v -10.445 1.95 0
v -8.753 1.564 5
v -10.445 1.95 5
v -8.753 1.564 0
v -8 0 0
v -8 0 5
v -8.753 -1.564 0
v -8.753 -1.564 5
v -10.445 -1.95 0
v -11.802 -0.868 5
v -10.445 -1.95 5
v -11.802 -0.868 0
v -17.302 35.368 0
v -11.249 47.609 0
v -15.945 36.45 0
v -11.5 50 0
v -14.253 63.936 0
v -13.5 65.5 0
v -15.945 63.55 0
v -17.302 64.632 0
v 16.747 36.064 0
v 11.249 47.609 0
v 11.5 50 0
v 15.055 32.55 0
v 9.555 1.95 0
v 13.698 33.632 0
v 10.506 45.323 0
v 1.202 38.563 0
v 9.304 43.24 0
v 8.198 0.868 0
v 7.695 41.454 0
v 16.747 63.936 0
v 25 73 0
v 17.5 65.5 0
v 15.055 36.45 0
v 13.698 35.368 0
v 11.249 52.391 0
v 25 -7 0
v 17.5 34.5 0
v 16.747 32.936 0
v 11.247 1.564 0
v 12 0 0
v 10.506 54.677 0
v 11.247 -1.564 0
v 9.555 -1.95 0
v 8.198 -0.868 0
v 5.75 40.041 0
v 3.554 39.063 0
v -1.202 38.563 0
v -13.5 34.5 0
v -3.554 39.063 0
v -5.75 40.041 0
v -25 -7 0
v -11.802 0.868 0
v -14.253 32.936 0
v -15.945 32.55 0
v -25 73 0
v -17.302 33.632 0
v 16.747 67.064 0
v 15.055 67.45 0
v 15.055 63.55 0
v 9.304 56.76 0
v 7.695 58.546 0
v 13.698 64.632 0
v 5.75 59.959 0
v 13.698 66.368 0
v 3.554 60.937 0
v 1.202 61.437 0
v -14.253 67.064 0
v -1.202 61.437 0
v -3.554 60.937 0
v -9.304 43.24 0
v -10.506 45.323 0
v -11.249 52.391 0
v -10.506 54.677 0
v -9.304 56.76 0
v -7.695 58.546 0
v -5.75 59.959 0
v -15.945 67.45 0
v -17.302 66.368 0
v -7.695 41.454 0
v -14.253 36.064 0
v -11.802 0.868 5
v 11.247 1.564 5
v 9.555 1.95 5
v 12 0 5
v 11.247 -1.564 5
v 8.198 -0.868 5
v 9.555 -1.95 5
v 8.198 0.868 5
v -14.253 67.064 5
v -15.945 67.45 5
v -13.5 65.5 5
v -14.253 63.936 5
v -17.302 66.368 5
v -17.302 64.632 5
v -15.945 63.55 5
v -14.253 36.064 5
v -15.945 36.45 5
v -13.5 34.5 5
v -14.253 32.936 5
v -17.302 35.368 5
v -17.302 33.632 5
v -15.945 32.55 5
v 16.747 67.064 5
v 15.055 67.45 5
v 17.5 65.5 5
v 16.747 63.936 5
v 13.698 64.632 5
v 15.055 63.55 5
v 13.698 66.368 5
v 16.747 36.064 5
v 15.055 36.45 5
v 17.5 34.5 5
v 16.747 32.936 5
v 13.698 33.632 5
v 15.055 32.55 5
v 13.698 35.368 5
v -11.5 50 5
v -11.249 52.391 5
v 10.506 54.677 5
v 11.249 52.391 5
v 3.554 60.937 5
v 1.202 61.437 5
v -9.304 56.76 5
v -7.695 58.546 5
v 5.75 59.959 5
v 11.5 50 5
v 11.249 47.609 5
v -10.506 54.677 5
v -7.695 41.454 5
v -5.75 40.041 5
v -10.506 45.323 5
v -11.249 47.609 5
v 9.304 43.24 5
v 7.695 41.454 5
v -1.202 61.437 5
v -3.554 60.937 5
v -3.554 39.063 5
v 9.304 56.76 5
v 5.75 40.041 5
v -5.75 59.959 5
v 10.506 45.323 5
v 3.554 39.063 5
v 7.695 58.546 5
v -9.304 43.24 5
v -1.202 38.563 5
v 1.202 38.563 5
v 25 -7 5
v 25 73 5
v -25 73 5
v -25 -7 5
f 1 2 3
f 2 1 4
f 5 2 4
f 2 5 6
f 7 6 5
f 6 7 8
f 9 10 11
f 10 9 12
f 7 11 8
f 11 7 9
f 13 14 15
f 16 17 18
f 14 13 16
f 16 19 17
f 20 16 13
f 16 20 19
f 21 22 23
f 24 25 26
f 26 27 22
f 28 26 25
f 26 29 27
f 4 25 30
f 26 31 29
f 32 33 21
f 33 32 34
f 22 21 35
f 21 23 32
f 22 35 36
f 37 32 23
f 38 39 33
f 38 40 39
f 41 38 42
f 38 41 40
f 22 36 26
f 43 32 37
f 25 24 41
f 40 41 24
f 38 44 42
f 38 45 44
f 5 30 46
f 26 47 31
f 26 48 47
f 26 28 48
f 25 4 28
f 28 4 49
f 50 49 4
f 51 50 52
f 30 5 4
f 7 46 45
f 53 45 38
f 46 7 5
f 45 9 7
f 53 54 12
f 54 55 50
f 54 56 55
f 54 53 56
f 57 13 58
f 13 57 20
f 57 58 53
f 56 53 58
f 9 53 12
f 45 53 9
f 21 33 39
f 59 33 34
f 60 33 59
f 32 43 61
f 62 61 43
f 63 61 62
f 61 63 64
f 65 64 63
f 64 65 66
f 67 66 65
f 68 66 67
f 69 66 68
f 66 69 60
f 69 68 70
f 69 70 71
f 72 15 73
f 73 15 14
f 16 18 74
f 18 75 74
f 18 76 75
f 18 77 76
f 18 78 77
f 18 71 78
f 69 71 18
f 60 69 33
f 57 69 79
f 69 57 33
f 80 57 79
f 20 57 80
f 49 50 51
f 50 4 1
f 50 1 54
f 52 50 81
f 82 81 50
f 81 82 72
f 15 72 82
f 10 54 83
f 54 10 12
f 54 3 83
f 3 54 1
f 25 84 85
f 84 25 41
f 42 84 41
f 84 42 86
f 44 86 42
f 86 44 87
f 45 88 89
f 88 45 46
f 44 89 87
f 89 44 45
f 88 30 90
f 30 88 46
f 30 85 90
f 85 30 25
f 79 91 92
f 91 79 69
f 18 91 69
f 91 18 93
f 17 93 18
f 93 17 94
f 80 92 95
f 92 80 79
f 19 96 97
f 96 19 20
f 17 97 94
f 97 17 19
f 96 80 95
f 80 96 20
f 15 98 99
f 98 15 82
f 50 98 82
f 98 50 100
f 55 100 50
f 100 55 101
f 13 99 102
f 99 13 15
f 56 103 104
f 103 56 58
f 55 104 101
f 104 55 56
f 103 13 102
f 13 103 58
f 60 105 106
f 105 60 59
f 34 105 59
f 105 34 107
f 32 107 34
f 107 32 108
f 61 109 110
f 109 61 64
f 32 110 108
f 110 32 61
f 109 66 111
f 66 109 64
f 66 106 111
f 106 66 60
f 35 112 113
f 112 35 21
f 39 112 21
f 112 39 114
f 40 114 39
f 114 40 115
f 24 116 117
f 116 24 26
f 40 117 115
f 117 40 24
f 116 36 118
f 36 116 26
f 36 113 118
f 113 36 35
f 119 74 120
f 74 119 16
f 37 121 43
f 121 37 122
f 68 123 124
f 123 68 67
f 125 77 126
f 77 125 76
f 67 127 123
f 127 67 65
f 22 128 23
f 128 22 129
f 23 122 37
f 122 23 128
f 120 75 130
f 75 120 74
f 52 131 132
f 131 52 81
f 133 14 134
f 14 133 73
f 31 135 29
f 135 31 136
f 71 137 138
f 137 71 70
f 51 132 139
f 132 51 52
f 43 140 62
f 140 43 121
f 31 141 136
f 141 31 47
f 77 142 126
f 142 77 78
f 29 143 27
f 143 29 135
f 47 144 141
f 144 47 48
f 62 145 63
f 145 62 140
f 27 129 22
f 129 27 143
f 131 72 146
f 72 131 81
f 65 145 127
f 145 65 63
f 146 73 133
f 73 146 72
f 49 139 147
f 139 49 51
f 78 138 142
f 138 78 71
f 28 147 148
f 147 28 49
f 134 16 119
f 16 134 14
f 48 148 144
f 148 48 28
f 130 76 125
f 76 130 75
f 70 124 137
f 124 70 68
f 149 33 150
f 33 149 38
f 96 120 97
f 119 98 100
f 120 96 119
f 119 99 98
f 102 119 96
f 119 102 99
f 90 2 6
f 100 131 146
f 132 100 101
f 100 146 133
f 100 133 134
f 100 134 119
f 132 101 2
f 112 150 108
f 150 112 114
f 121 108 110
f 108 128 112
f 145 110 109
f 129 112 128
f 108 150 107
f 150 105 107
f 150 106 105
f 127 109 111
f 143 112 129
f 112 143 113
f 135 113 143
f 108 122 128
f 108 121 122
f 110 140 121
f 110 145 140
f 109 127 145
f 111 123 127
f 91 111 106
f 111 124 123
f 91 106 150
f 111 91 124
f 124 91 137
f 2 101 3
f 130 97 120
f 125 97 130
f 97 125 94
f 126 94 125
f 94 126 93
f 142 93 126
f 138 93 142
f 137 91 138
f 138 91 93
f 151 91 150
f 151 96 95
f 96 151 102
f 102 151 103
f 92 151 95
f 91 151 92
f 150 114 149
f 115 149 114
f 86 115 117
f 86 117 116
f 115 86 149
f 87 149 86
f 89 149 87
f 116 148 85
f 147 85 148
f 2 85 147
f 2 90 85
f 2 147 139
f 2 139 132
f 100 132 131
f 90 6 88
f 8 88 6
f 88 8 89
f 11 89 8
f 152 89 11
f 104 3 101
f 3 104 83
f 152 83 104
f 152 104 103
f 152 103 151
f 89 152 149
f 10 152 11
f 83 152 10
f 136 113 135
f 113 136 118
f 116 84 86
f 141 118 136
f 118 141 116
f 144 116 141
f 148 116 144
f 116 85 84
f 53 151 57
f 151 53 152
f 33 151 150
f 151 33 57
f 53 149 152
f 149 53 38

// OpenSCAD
//Y axis motor mount

difference(){
    Body();
    translate([0,50]){MotorMount();}
    ExtrudedRail();
}

module MotorMount(){
    translate([-15.5,15.5]){cylinder(20, 2, 2);}
    translate([-15.5,-15.5]){cylinder(20, 2, 2);}
    translate([15.5,15.5]){cylinder(20, 2, 2);}
    translate([15.5,-15.5]){cylinder(20, 2, 2);}
    
    cylinder(20, 11.5, 11.5);
}

module ExtrudedRail(){
    translate([-10,0]){cylinder(20, 2, 2);}
    translate([10,0]){cylinder(20, 2, 2);}

}

module Body(){
    translate([-25,-7])cube([50,80,5]);
}
